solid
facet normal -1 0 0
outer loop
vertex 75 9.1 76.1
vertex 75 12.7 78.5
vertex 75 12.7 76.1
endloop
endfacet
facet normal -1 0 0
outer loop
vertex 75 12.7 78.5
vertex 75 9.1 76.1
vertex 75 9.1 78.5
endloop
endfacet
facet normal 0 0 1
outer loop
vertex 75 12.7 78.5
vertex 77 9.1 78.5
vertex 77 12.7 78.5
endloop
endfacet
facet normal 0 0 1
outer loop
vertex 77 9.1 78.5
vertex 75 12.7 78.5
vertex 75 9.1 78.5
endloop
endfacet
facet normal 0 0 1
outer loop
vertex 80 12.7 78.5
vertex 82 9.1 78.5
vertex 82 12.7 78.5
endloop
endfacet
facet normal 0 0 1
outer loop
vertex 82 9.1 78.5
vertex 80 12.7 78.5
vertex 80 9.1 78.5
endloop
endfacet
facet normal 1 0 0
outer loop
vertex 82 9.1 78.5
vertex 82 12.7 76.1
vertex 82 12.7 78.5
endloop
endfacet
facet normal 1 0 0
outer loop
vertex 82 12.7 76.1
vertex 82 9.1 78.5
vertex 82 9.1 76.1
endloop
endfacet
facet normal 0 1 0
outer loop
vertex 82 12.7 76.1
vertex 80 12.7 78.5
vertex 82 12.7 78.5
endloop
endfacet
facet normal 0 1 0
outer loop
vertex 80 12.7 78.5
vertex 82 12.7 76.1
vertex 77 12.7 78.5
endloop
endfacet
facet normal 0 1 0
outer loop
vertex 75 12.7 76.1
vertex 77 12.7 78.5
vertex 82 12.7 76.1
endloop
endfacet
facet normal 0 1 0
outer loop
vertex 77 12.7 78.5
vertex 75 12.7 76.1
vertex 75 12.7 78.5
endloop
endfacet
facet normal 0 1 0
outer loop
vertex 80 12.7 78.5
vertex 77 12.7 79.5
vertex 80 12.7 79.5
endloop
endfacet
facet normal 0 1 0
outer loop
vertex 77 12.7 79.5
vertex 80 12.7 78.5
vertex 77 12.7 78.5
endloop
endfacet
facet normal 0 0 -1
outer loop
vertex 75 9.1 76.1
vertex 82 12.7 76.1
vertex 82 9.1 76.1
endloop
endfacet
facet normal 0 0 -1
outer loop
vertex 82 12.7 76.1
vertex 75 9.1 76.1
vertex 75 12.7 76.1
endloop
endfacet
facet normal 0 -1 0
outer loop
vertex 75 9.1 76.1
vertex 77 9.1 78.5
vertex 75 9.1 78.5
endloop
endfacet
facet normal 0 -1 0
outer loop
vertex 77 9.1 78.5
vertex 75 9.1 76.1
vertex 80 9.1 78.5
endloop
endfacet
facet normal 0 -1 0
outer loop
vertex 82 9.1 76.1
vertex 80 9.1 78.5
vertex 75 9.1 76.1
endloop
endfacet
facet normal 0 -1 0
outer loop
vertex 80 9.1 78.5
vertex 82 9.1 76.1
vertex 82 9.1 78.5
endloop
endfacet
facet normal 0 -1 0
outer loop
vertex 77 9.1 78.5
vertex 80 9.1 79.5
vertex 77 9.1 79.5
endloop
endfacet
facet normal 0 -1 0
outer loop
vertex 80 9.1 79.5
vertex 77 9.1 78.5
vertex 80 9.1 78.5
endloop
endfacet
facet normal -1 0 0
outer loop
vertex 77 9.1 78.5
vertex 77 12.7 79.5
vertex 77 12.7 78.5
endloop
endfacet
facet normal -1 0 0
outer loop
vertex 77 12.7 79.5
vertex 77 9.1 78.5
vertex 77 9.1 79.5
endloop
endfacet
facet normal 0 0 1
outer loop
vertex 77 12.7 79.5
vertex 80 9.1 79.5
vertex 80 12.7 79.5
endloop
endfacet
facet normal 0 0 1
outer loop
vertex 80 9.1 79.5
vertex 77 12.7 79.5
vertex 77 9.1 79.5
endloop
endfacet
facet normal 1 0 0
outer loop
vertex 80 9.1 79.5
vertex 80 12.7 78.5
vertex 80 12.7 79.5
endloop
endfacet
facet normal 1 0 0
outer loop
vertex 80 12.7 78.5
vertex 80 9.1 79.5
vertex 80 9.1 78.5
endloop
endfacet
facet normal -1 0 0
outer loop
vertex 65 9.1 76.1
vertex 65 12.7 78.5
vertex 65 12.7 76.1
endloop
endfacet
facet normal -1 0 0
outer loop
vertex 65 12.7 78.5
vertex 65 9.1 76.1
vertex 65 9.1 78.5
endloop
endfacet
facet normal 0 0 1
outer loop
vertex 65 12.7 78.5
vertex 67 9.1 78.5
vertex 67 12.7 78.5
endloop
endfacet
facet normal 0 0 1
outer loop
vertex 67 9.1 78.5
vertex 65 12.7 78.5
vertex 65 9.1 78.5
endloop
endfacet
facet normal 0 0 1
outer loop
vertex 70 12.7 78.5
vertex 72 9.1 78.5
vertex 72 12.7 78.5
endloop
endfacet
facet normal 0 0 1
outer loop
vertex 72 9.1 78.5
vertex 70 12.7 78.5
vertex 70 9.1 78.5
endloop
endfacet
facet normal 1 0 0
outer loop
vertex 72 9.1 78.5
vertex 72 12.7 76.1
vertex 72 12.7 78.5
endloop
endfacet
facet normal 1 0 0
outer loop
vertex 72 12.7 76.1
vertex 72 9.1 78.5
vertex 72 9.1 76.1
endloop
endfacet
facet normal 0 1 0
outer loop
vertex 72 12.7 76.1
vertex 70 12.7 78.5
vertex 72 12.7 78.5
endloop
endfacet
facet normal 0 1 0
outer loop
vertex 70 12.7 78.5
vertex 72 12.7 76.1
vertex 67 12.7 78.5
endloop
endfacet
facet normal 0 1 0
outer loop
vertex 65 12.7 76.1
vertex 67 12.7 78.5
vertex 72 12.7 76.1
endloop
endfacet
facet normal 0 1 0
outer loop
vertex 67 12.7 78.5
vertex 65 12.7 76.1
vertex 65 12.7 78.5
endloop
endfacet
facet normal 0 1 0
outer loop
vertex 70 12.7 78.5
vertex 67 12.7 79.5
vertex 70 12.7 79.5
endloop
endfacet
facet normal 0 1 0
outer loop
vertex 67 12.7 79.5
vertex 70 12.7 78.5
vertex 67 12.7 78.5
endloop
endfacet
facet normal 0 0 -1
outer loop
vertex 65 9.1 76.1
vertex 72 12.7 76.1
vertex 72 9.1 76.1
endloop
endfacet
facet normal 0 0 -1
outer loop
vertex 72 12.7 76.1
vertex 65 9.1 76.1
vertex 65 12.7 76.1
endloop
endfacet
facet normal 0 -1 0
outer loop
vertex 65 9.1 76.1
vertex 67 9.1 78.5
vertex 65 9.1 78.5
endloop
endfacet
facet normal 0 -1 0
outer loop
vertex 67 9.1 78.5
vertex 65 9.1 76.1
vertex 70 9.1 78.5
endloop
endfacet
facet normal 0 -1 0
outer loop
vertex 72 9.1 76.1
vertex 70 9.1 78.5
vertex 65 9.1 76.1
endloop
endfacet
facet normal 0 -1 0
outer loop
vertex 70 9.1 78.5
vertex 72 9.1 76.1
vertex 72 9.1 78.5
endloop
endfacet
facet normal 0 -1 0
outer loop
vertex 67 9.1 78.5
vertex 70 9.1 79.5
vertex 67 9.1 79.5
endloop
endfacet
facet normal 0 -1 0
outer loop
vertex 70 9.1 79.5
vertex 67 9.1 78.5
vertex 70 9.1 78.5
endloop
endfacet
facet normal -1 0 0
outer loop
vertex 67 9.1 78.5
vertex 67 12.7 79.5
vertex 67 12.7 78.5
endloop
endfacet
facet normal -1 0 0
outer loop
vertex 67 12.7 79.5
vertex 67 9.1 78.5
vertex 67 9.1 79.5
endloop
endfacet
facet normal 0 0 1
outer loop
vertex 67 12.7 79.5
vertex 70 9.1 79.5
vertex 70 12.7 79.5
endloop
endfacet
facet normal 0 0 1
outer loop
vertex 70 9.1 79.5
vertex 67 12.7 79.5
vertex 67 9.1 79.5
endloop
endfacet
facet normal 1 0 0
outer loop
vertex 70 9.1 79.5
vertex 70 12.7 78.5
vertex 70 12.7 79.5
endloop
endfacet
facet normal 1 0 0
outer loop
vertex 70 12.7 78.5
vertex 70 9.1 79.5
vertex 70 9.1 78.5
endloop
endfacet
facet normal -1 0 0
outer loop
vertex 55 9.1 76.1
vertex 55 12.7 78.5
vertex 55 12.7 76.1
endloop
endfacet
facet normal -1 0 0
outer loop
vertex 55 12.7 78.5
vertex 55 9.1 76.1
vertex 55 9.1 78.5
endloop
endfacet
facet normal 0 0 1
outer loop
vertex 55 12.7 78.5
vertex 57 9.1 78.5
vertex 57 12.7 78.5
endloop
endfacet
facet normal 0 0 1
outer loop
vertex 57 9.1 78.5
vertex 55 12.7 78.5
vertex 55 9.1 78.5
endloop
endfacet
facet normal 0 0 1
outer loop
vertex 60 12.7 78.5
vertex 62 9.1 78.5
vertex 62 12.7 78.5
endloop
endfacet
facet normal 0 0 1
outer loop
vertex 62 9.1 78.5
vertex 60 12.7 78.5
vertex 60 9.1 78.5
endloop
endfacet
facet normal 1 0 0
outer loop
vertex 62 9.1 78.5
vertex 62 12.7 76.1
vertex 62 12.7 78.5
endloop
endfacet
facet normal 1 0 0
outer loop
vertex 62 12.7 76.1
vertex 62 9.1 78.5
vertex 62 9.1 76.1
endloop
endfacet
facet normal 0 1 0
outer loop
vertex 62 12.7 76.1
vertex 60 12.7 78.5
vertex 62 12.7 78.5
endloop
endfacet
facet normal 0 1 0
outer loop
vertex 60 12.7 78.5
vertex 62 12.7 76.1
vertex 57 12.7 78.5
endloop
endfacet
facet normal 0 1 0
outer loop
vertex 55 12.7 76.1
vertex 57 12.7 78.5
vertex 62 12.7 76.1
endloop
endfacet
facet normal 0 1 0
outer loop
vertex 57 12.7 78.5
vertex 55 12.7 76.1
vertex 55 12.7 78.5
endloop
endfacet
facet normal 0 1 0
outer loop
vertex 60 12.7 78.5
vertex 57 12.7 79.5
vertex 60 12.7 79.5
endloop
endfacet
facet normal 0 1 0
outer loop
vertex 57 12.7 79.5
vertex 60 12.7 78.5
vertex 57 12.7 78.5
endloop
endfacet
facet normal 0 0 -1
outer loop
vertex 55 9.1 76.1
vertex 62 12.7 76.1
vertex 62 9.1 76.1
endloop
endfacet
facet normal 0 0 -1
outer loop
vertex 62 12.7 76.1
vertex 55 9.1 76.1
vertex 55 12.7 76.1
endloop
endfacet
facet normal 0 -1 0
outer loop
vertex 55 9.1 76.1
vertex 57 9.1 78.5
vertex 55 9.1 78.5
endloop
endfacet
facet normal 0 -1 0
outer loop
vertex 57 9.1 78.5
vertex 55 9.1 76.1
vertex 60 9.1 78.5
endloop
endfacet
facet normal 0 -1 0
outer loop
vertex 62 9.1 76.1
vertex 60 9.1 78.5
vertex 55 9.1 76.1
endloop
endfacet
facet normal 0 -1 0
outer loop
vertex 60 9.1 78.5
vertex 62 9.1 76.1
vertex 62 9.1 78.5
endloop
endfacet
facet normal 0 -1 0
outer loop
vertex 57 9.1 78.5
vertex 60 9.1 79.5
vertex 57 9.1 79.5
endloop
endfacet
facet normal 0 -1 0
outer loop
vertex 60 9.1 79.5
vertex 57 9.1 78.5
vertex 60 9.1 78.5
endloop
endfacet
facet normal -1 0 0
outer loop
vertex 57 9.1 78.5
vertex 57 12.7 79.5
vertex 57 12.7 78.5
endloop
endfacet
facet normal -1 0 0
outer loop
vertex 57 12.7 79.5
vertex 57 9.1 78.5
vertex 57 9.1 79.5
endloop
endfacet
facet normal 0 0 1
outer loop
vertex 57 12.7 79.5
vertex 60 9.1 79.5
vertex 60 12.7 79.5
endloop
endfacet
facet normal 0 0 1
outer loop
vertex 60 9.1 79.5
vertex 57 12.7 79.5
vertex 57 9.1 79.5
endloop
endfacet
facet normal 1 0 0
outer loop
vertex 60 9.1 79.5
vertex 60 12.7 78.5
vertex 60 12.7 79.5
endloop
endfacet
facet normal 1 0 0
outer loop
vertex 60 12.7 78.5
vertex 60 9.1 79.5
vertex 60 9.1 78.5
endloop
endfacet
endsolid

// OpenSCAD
// file: D:/Projects/assembly-workshop/outputs/Screen_Pi_Hue_SCR5-H8_2026-10-31/checks/geometry.scad
// SCR5-G; mm; FRONT view: X right, Z up, Y into rack. Glass/plate front Y=0.
// Measured values: work/screen-5in/Dimensions.md. Physical fit/strength UNKNOWN.
part="plate";
DROP=0.45; // coupon winner can be substituted here; all three pins use this DROP
LIP=0.8; LIP_ON=true;
LIP_EDGES=[true,true,false,false]; // left,right,bottom,top; Brian: side lips only, cosmetic
FRAME_STEP=1.5; // measured glass-edge inset to metal LCD frame, left/right only
SHIM=0; // moves rear frame seat and plate-boss mating face back
$fn=48;
GCX=33; GCZ=41.5; PW=252; PH=88.8; PT=4;
GW=120.7; GH=77.2; CLEAR=0.2; WW=GW+2*CLEAR; WH=GH+2*CLEAR;
SEAT=13.3+SHIM; FT=3;
SO=[56.45,34]; BTN_X=[45.5,35.5,25.5];
PCB_TOP=38; GAP=0.10; LEAF_T=0.8;
HOLE=[3.4,40.3,44.7];
BX=[GCX-68,GCX+68]; BZ=[10,72];
// DSI connector X extent is unmeasured: conservative assumed 8 mm inward from PCB edge.
DSI=[GCX-60.5,9.1,GCZ-38+30,8,5.25,21];
module xz(y,d){translate([0,y+d,0])rotate([90,0,0])linear_extrude(d)children();}
// rr/rack_slots copied from SCR5-F; same exact slot centres, outline shifted -0.05 Z to centre 44.4.
module rr(w,h,r){hull()for(x=[-w/2+r,w/2-r],z=[-h/2+r,h/2-r])translate([x,z])circle(r=r);}
module rack_slots(){for(x=[-118.2625,118.2625],z=[6.323,38.127,50.773,82.577])translate([x,z])hull()for(dx=[-1.5,1.5])translate([dx,0])circle(d=7);}
module cyl_y(x,y,z,d,h){translate([x,y,z])rotate([-90,0,0])cylinder(d=d,h=h);}
module window_cut(){
  xz(-0.02,4.04)translate([GCX,GCZ])square([WW,WH],center=true);
  // 0.3 x 45-degree chamfer, square corners, front only.
  translate([GCX,0.3,GCZ])rotate([90,0,0])
    linear_extrude(height=0.3,scale=[(WW+0.6)/WW,(WH+0.6)/WH])square([WW,WH],center=true);
}
module lips(){
  // Cosmetic side ledges only; rear frame/standoffs set depth and retain the screen.
  if(LIP_ON)for(i=[0:3])if(LIP_EDGES[i]){
    if(i<2)translate([GCX+(i==0?-WW/2:WW/2-LIP),2.5,GCZ-GH/2+4])cube([LIP,0.8,GH-8]);
    else translate([GCX-GW/2+4,2.5,GCZ+(i==2?-WH/2:WH/2-LIP)])cube([GW-8,0.8,LIP]);
  }
}
// Leaf/nub/bump geometry copied from SCR5-WP-A, translated to this glass centre.
module leaves(){for(x=BTN_X)translate([GCX+x-1.5,0,GCZ]){
  translate([0,0,PCB_TOP+GAP+0.9+0.1])cube([3,11.8,LEAF_T]);
  translate([0,10.2,PCB_TOP+GAP])cube([3,1.4,1.0+LEAF_T/2]);
  translate([0,10.4,PCB_TOP+GAP+1.0+LEAF_T])cube([3,1.0,0.9]);
}}
module plate(){difference(){union(){
  difference(){xz(0,PT)translate([0,PH/2])rr(PW,PH,2.5);window_cut();}
  for(x=BX,z=BZ)cyl_y(x,3.9,z,8,SEAT-3.9);
  leaves(); lips();
 }
 xz(-0.02,4.04)rack_slots();
 for(x=BTN_X)translate([GCX+x-HOLE[0]/2,-0.02,GCZ+HOLE[1]])cube([HOLE[0],SEAT+FT+0.04,HOLE[2]-HOLE[1]]);
 // Printed-in screw pilots (no heat-set OD assumption): nominal M2.5, fit UNKNOWN.
 for(x=BX,z=BZ)cyl_y(x,SEAT-6,z,2.1,6.02);
 // Rear engraving, 0.5 deep, left field.
 xz(3.5,0.52)translate([-75,40])mirror([1,0])text("SCR5-G",size=6,halign="center",font="Liberation Sans:style=Bold");
}}
module frame_blank(){
  // C-shaped perimeter; no material across the board centre / touch FPC.
  xz(SEAT,FT)translate([GCX,GCZ])difference(){square([132,76],center=true);square([116,60],center=true);}
  for(sx=[-1,1],sz=[-1,1])cyl_y(GCX+sx*SO[0],SEAT,GCZ+sz*SO[1],9,FT);
  for(x=BX,z=BZ)hull(){cyl_y(x,SEAT,z,8,FT);cyl_y(GCX+(x<GCX?-62:62),SEAT,z,8,FT);}
}
module dsi_keepout(){translate([DSI[0]-3,DSI[1]-3,DSI[2]-3])cube([DSI[3]+6,DSI[4]+6,DSI[5]+6]);}
module ribbon_route(){
  // Open left/up corridor 18 mm wide; extends past top of plate.
  translate([GCX-84,6.1,GCZ-11])cube([18,24,65]);
  translate([GCX-84,6.1,GCZ-11])cube([32,24,27]);
}
module frame(){difference(){frame_blank();dsi_keepout();ribbon_route();
 for(sx=[-1,1],sz=[-1,1])cyl_y(GCX+sx*SO[0],SEAT-0.02,GCZ+sz*SO[1],2.8,FT+0.04);
 for(x=BX,z=BZ)cyl_y(x,SEAT-0.02,z,2.8,FT+0.04);
}}
// Pin polygon/cap/notch/dot design copied unchanged from SCR5-WP-A.
module pin(d,dots){s=2*d+0.5;difference(){union(){
 translate([-1.5,0,0])rotate([90,0,90])linear_extrude(3)polygon([
 [-s-0.02,40.5],[10.2,40.5],[10.2,41.0],[11.5,41.0],[11.5+2*d,41.0-d],[15,41.0-d],[15,44.5],[-s-0.02,44.5]]);
 translate([-2.5,-s-1.5,39.6])cube([5,1.5,5.8]);
 }for(i=[0:dots-1])translate([(i-(dots-1)/2)*1.4,-s-1.5-0.01,43.5])rotate([-90,0,0])cylinder(d=0.9,h=0.4);}}
module placed_pin(i){translate([GCX+BTN_X[i],0,GCZ])pin(DROP,i+1);}
// Measured layers: cover glass 0.9 + second glass 1.6, metal frame 3.0,
// open gap 2.0, PCB 1.6. Metal frame inset ~1.5 at LEFT/RIGHT only.
// PCB centred under glass and full metal-frame top/bottom extent remain UNKNOWN.
module glass(){translate([GCX-GW/2,0,GCZ-GH/2])cube([GW,2.5,GH]);}
module lcd(){
  translate([GCX-GW/2+FRAME_STEP,2.5,GCZ-GH/2])cube([GW-2*FRAME_STEP,3.0,GH]);
}
module pcb(){translate([GCX-60.5,7.5,GCZ-38])cube([121,1.6,76]);}
module standoffs(){for(sx=[-1,1],sz=[-1,1])difference(){cyl_y(GCX+sx*SO[0],9.1,GCZ+sz*SO[1],5.5,4.2);cyl_y(GCX+sx*SO[0],9.08,GCZ+sz*SO[1],2.5,4.24);}}
module buttons(){for(x=BTN_X){
 translate([GCX+x-3.5,9.1,GCZ+38-3.4])cube([7,3.6,2.4]);
 translate([GCX+x-1.5,9.1,GCZ+37])cube([3,3.6,1]);
}}
module dsi(){translate([DSI[0],DSI[1],DSI[2]])cube([DSI[3],DSI[4],DSI[5]]);}
module touch(){translate([GCX-10,9.1,GCZ-5])cube([20,2,10]);} // lateral extent unmeasured
module dummy(){glass();lcd();pcb();standoffs();buttons();dsi();touch();}
module assembly(){color("gray")plate();color("orange")frame();for(i=[0:2])color("cyan")placed_pin(i);color([0.2,0.3,0.4,0.4])dummy();}
// main file
include <D:/Projects/assembly-workshop/outputs/Screen_Pi_Hue_SCR5-H8_2026-10-31/checks/geometry.scad>
buttons();
